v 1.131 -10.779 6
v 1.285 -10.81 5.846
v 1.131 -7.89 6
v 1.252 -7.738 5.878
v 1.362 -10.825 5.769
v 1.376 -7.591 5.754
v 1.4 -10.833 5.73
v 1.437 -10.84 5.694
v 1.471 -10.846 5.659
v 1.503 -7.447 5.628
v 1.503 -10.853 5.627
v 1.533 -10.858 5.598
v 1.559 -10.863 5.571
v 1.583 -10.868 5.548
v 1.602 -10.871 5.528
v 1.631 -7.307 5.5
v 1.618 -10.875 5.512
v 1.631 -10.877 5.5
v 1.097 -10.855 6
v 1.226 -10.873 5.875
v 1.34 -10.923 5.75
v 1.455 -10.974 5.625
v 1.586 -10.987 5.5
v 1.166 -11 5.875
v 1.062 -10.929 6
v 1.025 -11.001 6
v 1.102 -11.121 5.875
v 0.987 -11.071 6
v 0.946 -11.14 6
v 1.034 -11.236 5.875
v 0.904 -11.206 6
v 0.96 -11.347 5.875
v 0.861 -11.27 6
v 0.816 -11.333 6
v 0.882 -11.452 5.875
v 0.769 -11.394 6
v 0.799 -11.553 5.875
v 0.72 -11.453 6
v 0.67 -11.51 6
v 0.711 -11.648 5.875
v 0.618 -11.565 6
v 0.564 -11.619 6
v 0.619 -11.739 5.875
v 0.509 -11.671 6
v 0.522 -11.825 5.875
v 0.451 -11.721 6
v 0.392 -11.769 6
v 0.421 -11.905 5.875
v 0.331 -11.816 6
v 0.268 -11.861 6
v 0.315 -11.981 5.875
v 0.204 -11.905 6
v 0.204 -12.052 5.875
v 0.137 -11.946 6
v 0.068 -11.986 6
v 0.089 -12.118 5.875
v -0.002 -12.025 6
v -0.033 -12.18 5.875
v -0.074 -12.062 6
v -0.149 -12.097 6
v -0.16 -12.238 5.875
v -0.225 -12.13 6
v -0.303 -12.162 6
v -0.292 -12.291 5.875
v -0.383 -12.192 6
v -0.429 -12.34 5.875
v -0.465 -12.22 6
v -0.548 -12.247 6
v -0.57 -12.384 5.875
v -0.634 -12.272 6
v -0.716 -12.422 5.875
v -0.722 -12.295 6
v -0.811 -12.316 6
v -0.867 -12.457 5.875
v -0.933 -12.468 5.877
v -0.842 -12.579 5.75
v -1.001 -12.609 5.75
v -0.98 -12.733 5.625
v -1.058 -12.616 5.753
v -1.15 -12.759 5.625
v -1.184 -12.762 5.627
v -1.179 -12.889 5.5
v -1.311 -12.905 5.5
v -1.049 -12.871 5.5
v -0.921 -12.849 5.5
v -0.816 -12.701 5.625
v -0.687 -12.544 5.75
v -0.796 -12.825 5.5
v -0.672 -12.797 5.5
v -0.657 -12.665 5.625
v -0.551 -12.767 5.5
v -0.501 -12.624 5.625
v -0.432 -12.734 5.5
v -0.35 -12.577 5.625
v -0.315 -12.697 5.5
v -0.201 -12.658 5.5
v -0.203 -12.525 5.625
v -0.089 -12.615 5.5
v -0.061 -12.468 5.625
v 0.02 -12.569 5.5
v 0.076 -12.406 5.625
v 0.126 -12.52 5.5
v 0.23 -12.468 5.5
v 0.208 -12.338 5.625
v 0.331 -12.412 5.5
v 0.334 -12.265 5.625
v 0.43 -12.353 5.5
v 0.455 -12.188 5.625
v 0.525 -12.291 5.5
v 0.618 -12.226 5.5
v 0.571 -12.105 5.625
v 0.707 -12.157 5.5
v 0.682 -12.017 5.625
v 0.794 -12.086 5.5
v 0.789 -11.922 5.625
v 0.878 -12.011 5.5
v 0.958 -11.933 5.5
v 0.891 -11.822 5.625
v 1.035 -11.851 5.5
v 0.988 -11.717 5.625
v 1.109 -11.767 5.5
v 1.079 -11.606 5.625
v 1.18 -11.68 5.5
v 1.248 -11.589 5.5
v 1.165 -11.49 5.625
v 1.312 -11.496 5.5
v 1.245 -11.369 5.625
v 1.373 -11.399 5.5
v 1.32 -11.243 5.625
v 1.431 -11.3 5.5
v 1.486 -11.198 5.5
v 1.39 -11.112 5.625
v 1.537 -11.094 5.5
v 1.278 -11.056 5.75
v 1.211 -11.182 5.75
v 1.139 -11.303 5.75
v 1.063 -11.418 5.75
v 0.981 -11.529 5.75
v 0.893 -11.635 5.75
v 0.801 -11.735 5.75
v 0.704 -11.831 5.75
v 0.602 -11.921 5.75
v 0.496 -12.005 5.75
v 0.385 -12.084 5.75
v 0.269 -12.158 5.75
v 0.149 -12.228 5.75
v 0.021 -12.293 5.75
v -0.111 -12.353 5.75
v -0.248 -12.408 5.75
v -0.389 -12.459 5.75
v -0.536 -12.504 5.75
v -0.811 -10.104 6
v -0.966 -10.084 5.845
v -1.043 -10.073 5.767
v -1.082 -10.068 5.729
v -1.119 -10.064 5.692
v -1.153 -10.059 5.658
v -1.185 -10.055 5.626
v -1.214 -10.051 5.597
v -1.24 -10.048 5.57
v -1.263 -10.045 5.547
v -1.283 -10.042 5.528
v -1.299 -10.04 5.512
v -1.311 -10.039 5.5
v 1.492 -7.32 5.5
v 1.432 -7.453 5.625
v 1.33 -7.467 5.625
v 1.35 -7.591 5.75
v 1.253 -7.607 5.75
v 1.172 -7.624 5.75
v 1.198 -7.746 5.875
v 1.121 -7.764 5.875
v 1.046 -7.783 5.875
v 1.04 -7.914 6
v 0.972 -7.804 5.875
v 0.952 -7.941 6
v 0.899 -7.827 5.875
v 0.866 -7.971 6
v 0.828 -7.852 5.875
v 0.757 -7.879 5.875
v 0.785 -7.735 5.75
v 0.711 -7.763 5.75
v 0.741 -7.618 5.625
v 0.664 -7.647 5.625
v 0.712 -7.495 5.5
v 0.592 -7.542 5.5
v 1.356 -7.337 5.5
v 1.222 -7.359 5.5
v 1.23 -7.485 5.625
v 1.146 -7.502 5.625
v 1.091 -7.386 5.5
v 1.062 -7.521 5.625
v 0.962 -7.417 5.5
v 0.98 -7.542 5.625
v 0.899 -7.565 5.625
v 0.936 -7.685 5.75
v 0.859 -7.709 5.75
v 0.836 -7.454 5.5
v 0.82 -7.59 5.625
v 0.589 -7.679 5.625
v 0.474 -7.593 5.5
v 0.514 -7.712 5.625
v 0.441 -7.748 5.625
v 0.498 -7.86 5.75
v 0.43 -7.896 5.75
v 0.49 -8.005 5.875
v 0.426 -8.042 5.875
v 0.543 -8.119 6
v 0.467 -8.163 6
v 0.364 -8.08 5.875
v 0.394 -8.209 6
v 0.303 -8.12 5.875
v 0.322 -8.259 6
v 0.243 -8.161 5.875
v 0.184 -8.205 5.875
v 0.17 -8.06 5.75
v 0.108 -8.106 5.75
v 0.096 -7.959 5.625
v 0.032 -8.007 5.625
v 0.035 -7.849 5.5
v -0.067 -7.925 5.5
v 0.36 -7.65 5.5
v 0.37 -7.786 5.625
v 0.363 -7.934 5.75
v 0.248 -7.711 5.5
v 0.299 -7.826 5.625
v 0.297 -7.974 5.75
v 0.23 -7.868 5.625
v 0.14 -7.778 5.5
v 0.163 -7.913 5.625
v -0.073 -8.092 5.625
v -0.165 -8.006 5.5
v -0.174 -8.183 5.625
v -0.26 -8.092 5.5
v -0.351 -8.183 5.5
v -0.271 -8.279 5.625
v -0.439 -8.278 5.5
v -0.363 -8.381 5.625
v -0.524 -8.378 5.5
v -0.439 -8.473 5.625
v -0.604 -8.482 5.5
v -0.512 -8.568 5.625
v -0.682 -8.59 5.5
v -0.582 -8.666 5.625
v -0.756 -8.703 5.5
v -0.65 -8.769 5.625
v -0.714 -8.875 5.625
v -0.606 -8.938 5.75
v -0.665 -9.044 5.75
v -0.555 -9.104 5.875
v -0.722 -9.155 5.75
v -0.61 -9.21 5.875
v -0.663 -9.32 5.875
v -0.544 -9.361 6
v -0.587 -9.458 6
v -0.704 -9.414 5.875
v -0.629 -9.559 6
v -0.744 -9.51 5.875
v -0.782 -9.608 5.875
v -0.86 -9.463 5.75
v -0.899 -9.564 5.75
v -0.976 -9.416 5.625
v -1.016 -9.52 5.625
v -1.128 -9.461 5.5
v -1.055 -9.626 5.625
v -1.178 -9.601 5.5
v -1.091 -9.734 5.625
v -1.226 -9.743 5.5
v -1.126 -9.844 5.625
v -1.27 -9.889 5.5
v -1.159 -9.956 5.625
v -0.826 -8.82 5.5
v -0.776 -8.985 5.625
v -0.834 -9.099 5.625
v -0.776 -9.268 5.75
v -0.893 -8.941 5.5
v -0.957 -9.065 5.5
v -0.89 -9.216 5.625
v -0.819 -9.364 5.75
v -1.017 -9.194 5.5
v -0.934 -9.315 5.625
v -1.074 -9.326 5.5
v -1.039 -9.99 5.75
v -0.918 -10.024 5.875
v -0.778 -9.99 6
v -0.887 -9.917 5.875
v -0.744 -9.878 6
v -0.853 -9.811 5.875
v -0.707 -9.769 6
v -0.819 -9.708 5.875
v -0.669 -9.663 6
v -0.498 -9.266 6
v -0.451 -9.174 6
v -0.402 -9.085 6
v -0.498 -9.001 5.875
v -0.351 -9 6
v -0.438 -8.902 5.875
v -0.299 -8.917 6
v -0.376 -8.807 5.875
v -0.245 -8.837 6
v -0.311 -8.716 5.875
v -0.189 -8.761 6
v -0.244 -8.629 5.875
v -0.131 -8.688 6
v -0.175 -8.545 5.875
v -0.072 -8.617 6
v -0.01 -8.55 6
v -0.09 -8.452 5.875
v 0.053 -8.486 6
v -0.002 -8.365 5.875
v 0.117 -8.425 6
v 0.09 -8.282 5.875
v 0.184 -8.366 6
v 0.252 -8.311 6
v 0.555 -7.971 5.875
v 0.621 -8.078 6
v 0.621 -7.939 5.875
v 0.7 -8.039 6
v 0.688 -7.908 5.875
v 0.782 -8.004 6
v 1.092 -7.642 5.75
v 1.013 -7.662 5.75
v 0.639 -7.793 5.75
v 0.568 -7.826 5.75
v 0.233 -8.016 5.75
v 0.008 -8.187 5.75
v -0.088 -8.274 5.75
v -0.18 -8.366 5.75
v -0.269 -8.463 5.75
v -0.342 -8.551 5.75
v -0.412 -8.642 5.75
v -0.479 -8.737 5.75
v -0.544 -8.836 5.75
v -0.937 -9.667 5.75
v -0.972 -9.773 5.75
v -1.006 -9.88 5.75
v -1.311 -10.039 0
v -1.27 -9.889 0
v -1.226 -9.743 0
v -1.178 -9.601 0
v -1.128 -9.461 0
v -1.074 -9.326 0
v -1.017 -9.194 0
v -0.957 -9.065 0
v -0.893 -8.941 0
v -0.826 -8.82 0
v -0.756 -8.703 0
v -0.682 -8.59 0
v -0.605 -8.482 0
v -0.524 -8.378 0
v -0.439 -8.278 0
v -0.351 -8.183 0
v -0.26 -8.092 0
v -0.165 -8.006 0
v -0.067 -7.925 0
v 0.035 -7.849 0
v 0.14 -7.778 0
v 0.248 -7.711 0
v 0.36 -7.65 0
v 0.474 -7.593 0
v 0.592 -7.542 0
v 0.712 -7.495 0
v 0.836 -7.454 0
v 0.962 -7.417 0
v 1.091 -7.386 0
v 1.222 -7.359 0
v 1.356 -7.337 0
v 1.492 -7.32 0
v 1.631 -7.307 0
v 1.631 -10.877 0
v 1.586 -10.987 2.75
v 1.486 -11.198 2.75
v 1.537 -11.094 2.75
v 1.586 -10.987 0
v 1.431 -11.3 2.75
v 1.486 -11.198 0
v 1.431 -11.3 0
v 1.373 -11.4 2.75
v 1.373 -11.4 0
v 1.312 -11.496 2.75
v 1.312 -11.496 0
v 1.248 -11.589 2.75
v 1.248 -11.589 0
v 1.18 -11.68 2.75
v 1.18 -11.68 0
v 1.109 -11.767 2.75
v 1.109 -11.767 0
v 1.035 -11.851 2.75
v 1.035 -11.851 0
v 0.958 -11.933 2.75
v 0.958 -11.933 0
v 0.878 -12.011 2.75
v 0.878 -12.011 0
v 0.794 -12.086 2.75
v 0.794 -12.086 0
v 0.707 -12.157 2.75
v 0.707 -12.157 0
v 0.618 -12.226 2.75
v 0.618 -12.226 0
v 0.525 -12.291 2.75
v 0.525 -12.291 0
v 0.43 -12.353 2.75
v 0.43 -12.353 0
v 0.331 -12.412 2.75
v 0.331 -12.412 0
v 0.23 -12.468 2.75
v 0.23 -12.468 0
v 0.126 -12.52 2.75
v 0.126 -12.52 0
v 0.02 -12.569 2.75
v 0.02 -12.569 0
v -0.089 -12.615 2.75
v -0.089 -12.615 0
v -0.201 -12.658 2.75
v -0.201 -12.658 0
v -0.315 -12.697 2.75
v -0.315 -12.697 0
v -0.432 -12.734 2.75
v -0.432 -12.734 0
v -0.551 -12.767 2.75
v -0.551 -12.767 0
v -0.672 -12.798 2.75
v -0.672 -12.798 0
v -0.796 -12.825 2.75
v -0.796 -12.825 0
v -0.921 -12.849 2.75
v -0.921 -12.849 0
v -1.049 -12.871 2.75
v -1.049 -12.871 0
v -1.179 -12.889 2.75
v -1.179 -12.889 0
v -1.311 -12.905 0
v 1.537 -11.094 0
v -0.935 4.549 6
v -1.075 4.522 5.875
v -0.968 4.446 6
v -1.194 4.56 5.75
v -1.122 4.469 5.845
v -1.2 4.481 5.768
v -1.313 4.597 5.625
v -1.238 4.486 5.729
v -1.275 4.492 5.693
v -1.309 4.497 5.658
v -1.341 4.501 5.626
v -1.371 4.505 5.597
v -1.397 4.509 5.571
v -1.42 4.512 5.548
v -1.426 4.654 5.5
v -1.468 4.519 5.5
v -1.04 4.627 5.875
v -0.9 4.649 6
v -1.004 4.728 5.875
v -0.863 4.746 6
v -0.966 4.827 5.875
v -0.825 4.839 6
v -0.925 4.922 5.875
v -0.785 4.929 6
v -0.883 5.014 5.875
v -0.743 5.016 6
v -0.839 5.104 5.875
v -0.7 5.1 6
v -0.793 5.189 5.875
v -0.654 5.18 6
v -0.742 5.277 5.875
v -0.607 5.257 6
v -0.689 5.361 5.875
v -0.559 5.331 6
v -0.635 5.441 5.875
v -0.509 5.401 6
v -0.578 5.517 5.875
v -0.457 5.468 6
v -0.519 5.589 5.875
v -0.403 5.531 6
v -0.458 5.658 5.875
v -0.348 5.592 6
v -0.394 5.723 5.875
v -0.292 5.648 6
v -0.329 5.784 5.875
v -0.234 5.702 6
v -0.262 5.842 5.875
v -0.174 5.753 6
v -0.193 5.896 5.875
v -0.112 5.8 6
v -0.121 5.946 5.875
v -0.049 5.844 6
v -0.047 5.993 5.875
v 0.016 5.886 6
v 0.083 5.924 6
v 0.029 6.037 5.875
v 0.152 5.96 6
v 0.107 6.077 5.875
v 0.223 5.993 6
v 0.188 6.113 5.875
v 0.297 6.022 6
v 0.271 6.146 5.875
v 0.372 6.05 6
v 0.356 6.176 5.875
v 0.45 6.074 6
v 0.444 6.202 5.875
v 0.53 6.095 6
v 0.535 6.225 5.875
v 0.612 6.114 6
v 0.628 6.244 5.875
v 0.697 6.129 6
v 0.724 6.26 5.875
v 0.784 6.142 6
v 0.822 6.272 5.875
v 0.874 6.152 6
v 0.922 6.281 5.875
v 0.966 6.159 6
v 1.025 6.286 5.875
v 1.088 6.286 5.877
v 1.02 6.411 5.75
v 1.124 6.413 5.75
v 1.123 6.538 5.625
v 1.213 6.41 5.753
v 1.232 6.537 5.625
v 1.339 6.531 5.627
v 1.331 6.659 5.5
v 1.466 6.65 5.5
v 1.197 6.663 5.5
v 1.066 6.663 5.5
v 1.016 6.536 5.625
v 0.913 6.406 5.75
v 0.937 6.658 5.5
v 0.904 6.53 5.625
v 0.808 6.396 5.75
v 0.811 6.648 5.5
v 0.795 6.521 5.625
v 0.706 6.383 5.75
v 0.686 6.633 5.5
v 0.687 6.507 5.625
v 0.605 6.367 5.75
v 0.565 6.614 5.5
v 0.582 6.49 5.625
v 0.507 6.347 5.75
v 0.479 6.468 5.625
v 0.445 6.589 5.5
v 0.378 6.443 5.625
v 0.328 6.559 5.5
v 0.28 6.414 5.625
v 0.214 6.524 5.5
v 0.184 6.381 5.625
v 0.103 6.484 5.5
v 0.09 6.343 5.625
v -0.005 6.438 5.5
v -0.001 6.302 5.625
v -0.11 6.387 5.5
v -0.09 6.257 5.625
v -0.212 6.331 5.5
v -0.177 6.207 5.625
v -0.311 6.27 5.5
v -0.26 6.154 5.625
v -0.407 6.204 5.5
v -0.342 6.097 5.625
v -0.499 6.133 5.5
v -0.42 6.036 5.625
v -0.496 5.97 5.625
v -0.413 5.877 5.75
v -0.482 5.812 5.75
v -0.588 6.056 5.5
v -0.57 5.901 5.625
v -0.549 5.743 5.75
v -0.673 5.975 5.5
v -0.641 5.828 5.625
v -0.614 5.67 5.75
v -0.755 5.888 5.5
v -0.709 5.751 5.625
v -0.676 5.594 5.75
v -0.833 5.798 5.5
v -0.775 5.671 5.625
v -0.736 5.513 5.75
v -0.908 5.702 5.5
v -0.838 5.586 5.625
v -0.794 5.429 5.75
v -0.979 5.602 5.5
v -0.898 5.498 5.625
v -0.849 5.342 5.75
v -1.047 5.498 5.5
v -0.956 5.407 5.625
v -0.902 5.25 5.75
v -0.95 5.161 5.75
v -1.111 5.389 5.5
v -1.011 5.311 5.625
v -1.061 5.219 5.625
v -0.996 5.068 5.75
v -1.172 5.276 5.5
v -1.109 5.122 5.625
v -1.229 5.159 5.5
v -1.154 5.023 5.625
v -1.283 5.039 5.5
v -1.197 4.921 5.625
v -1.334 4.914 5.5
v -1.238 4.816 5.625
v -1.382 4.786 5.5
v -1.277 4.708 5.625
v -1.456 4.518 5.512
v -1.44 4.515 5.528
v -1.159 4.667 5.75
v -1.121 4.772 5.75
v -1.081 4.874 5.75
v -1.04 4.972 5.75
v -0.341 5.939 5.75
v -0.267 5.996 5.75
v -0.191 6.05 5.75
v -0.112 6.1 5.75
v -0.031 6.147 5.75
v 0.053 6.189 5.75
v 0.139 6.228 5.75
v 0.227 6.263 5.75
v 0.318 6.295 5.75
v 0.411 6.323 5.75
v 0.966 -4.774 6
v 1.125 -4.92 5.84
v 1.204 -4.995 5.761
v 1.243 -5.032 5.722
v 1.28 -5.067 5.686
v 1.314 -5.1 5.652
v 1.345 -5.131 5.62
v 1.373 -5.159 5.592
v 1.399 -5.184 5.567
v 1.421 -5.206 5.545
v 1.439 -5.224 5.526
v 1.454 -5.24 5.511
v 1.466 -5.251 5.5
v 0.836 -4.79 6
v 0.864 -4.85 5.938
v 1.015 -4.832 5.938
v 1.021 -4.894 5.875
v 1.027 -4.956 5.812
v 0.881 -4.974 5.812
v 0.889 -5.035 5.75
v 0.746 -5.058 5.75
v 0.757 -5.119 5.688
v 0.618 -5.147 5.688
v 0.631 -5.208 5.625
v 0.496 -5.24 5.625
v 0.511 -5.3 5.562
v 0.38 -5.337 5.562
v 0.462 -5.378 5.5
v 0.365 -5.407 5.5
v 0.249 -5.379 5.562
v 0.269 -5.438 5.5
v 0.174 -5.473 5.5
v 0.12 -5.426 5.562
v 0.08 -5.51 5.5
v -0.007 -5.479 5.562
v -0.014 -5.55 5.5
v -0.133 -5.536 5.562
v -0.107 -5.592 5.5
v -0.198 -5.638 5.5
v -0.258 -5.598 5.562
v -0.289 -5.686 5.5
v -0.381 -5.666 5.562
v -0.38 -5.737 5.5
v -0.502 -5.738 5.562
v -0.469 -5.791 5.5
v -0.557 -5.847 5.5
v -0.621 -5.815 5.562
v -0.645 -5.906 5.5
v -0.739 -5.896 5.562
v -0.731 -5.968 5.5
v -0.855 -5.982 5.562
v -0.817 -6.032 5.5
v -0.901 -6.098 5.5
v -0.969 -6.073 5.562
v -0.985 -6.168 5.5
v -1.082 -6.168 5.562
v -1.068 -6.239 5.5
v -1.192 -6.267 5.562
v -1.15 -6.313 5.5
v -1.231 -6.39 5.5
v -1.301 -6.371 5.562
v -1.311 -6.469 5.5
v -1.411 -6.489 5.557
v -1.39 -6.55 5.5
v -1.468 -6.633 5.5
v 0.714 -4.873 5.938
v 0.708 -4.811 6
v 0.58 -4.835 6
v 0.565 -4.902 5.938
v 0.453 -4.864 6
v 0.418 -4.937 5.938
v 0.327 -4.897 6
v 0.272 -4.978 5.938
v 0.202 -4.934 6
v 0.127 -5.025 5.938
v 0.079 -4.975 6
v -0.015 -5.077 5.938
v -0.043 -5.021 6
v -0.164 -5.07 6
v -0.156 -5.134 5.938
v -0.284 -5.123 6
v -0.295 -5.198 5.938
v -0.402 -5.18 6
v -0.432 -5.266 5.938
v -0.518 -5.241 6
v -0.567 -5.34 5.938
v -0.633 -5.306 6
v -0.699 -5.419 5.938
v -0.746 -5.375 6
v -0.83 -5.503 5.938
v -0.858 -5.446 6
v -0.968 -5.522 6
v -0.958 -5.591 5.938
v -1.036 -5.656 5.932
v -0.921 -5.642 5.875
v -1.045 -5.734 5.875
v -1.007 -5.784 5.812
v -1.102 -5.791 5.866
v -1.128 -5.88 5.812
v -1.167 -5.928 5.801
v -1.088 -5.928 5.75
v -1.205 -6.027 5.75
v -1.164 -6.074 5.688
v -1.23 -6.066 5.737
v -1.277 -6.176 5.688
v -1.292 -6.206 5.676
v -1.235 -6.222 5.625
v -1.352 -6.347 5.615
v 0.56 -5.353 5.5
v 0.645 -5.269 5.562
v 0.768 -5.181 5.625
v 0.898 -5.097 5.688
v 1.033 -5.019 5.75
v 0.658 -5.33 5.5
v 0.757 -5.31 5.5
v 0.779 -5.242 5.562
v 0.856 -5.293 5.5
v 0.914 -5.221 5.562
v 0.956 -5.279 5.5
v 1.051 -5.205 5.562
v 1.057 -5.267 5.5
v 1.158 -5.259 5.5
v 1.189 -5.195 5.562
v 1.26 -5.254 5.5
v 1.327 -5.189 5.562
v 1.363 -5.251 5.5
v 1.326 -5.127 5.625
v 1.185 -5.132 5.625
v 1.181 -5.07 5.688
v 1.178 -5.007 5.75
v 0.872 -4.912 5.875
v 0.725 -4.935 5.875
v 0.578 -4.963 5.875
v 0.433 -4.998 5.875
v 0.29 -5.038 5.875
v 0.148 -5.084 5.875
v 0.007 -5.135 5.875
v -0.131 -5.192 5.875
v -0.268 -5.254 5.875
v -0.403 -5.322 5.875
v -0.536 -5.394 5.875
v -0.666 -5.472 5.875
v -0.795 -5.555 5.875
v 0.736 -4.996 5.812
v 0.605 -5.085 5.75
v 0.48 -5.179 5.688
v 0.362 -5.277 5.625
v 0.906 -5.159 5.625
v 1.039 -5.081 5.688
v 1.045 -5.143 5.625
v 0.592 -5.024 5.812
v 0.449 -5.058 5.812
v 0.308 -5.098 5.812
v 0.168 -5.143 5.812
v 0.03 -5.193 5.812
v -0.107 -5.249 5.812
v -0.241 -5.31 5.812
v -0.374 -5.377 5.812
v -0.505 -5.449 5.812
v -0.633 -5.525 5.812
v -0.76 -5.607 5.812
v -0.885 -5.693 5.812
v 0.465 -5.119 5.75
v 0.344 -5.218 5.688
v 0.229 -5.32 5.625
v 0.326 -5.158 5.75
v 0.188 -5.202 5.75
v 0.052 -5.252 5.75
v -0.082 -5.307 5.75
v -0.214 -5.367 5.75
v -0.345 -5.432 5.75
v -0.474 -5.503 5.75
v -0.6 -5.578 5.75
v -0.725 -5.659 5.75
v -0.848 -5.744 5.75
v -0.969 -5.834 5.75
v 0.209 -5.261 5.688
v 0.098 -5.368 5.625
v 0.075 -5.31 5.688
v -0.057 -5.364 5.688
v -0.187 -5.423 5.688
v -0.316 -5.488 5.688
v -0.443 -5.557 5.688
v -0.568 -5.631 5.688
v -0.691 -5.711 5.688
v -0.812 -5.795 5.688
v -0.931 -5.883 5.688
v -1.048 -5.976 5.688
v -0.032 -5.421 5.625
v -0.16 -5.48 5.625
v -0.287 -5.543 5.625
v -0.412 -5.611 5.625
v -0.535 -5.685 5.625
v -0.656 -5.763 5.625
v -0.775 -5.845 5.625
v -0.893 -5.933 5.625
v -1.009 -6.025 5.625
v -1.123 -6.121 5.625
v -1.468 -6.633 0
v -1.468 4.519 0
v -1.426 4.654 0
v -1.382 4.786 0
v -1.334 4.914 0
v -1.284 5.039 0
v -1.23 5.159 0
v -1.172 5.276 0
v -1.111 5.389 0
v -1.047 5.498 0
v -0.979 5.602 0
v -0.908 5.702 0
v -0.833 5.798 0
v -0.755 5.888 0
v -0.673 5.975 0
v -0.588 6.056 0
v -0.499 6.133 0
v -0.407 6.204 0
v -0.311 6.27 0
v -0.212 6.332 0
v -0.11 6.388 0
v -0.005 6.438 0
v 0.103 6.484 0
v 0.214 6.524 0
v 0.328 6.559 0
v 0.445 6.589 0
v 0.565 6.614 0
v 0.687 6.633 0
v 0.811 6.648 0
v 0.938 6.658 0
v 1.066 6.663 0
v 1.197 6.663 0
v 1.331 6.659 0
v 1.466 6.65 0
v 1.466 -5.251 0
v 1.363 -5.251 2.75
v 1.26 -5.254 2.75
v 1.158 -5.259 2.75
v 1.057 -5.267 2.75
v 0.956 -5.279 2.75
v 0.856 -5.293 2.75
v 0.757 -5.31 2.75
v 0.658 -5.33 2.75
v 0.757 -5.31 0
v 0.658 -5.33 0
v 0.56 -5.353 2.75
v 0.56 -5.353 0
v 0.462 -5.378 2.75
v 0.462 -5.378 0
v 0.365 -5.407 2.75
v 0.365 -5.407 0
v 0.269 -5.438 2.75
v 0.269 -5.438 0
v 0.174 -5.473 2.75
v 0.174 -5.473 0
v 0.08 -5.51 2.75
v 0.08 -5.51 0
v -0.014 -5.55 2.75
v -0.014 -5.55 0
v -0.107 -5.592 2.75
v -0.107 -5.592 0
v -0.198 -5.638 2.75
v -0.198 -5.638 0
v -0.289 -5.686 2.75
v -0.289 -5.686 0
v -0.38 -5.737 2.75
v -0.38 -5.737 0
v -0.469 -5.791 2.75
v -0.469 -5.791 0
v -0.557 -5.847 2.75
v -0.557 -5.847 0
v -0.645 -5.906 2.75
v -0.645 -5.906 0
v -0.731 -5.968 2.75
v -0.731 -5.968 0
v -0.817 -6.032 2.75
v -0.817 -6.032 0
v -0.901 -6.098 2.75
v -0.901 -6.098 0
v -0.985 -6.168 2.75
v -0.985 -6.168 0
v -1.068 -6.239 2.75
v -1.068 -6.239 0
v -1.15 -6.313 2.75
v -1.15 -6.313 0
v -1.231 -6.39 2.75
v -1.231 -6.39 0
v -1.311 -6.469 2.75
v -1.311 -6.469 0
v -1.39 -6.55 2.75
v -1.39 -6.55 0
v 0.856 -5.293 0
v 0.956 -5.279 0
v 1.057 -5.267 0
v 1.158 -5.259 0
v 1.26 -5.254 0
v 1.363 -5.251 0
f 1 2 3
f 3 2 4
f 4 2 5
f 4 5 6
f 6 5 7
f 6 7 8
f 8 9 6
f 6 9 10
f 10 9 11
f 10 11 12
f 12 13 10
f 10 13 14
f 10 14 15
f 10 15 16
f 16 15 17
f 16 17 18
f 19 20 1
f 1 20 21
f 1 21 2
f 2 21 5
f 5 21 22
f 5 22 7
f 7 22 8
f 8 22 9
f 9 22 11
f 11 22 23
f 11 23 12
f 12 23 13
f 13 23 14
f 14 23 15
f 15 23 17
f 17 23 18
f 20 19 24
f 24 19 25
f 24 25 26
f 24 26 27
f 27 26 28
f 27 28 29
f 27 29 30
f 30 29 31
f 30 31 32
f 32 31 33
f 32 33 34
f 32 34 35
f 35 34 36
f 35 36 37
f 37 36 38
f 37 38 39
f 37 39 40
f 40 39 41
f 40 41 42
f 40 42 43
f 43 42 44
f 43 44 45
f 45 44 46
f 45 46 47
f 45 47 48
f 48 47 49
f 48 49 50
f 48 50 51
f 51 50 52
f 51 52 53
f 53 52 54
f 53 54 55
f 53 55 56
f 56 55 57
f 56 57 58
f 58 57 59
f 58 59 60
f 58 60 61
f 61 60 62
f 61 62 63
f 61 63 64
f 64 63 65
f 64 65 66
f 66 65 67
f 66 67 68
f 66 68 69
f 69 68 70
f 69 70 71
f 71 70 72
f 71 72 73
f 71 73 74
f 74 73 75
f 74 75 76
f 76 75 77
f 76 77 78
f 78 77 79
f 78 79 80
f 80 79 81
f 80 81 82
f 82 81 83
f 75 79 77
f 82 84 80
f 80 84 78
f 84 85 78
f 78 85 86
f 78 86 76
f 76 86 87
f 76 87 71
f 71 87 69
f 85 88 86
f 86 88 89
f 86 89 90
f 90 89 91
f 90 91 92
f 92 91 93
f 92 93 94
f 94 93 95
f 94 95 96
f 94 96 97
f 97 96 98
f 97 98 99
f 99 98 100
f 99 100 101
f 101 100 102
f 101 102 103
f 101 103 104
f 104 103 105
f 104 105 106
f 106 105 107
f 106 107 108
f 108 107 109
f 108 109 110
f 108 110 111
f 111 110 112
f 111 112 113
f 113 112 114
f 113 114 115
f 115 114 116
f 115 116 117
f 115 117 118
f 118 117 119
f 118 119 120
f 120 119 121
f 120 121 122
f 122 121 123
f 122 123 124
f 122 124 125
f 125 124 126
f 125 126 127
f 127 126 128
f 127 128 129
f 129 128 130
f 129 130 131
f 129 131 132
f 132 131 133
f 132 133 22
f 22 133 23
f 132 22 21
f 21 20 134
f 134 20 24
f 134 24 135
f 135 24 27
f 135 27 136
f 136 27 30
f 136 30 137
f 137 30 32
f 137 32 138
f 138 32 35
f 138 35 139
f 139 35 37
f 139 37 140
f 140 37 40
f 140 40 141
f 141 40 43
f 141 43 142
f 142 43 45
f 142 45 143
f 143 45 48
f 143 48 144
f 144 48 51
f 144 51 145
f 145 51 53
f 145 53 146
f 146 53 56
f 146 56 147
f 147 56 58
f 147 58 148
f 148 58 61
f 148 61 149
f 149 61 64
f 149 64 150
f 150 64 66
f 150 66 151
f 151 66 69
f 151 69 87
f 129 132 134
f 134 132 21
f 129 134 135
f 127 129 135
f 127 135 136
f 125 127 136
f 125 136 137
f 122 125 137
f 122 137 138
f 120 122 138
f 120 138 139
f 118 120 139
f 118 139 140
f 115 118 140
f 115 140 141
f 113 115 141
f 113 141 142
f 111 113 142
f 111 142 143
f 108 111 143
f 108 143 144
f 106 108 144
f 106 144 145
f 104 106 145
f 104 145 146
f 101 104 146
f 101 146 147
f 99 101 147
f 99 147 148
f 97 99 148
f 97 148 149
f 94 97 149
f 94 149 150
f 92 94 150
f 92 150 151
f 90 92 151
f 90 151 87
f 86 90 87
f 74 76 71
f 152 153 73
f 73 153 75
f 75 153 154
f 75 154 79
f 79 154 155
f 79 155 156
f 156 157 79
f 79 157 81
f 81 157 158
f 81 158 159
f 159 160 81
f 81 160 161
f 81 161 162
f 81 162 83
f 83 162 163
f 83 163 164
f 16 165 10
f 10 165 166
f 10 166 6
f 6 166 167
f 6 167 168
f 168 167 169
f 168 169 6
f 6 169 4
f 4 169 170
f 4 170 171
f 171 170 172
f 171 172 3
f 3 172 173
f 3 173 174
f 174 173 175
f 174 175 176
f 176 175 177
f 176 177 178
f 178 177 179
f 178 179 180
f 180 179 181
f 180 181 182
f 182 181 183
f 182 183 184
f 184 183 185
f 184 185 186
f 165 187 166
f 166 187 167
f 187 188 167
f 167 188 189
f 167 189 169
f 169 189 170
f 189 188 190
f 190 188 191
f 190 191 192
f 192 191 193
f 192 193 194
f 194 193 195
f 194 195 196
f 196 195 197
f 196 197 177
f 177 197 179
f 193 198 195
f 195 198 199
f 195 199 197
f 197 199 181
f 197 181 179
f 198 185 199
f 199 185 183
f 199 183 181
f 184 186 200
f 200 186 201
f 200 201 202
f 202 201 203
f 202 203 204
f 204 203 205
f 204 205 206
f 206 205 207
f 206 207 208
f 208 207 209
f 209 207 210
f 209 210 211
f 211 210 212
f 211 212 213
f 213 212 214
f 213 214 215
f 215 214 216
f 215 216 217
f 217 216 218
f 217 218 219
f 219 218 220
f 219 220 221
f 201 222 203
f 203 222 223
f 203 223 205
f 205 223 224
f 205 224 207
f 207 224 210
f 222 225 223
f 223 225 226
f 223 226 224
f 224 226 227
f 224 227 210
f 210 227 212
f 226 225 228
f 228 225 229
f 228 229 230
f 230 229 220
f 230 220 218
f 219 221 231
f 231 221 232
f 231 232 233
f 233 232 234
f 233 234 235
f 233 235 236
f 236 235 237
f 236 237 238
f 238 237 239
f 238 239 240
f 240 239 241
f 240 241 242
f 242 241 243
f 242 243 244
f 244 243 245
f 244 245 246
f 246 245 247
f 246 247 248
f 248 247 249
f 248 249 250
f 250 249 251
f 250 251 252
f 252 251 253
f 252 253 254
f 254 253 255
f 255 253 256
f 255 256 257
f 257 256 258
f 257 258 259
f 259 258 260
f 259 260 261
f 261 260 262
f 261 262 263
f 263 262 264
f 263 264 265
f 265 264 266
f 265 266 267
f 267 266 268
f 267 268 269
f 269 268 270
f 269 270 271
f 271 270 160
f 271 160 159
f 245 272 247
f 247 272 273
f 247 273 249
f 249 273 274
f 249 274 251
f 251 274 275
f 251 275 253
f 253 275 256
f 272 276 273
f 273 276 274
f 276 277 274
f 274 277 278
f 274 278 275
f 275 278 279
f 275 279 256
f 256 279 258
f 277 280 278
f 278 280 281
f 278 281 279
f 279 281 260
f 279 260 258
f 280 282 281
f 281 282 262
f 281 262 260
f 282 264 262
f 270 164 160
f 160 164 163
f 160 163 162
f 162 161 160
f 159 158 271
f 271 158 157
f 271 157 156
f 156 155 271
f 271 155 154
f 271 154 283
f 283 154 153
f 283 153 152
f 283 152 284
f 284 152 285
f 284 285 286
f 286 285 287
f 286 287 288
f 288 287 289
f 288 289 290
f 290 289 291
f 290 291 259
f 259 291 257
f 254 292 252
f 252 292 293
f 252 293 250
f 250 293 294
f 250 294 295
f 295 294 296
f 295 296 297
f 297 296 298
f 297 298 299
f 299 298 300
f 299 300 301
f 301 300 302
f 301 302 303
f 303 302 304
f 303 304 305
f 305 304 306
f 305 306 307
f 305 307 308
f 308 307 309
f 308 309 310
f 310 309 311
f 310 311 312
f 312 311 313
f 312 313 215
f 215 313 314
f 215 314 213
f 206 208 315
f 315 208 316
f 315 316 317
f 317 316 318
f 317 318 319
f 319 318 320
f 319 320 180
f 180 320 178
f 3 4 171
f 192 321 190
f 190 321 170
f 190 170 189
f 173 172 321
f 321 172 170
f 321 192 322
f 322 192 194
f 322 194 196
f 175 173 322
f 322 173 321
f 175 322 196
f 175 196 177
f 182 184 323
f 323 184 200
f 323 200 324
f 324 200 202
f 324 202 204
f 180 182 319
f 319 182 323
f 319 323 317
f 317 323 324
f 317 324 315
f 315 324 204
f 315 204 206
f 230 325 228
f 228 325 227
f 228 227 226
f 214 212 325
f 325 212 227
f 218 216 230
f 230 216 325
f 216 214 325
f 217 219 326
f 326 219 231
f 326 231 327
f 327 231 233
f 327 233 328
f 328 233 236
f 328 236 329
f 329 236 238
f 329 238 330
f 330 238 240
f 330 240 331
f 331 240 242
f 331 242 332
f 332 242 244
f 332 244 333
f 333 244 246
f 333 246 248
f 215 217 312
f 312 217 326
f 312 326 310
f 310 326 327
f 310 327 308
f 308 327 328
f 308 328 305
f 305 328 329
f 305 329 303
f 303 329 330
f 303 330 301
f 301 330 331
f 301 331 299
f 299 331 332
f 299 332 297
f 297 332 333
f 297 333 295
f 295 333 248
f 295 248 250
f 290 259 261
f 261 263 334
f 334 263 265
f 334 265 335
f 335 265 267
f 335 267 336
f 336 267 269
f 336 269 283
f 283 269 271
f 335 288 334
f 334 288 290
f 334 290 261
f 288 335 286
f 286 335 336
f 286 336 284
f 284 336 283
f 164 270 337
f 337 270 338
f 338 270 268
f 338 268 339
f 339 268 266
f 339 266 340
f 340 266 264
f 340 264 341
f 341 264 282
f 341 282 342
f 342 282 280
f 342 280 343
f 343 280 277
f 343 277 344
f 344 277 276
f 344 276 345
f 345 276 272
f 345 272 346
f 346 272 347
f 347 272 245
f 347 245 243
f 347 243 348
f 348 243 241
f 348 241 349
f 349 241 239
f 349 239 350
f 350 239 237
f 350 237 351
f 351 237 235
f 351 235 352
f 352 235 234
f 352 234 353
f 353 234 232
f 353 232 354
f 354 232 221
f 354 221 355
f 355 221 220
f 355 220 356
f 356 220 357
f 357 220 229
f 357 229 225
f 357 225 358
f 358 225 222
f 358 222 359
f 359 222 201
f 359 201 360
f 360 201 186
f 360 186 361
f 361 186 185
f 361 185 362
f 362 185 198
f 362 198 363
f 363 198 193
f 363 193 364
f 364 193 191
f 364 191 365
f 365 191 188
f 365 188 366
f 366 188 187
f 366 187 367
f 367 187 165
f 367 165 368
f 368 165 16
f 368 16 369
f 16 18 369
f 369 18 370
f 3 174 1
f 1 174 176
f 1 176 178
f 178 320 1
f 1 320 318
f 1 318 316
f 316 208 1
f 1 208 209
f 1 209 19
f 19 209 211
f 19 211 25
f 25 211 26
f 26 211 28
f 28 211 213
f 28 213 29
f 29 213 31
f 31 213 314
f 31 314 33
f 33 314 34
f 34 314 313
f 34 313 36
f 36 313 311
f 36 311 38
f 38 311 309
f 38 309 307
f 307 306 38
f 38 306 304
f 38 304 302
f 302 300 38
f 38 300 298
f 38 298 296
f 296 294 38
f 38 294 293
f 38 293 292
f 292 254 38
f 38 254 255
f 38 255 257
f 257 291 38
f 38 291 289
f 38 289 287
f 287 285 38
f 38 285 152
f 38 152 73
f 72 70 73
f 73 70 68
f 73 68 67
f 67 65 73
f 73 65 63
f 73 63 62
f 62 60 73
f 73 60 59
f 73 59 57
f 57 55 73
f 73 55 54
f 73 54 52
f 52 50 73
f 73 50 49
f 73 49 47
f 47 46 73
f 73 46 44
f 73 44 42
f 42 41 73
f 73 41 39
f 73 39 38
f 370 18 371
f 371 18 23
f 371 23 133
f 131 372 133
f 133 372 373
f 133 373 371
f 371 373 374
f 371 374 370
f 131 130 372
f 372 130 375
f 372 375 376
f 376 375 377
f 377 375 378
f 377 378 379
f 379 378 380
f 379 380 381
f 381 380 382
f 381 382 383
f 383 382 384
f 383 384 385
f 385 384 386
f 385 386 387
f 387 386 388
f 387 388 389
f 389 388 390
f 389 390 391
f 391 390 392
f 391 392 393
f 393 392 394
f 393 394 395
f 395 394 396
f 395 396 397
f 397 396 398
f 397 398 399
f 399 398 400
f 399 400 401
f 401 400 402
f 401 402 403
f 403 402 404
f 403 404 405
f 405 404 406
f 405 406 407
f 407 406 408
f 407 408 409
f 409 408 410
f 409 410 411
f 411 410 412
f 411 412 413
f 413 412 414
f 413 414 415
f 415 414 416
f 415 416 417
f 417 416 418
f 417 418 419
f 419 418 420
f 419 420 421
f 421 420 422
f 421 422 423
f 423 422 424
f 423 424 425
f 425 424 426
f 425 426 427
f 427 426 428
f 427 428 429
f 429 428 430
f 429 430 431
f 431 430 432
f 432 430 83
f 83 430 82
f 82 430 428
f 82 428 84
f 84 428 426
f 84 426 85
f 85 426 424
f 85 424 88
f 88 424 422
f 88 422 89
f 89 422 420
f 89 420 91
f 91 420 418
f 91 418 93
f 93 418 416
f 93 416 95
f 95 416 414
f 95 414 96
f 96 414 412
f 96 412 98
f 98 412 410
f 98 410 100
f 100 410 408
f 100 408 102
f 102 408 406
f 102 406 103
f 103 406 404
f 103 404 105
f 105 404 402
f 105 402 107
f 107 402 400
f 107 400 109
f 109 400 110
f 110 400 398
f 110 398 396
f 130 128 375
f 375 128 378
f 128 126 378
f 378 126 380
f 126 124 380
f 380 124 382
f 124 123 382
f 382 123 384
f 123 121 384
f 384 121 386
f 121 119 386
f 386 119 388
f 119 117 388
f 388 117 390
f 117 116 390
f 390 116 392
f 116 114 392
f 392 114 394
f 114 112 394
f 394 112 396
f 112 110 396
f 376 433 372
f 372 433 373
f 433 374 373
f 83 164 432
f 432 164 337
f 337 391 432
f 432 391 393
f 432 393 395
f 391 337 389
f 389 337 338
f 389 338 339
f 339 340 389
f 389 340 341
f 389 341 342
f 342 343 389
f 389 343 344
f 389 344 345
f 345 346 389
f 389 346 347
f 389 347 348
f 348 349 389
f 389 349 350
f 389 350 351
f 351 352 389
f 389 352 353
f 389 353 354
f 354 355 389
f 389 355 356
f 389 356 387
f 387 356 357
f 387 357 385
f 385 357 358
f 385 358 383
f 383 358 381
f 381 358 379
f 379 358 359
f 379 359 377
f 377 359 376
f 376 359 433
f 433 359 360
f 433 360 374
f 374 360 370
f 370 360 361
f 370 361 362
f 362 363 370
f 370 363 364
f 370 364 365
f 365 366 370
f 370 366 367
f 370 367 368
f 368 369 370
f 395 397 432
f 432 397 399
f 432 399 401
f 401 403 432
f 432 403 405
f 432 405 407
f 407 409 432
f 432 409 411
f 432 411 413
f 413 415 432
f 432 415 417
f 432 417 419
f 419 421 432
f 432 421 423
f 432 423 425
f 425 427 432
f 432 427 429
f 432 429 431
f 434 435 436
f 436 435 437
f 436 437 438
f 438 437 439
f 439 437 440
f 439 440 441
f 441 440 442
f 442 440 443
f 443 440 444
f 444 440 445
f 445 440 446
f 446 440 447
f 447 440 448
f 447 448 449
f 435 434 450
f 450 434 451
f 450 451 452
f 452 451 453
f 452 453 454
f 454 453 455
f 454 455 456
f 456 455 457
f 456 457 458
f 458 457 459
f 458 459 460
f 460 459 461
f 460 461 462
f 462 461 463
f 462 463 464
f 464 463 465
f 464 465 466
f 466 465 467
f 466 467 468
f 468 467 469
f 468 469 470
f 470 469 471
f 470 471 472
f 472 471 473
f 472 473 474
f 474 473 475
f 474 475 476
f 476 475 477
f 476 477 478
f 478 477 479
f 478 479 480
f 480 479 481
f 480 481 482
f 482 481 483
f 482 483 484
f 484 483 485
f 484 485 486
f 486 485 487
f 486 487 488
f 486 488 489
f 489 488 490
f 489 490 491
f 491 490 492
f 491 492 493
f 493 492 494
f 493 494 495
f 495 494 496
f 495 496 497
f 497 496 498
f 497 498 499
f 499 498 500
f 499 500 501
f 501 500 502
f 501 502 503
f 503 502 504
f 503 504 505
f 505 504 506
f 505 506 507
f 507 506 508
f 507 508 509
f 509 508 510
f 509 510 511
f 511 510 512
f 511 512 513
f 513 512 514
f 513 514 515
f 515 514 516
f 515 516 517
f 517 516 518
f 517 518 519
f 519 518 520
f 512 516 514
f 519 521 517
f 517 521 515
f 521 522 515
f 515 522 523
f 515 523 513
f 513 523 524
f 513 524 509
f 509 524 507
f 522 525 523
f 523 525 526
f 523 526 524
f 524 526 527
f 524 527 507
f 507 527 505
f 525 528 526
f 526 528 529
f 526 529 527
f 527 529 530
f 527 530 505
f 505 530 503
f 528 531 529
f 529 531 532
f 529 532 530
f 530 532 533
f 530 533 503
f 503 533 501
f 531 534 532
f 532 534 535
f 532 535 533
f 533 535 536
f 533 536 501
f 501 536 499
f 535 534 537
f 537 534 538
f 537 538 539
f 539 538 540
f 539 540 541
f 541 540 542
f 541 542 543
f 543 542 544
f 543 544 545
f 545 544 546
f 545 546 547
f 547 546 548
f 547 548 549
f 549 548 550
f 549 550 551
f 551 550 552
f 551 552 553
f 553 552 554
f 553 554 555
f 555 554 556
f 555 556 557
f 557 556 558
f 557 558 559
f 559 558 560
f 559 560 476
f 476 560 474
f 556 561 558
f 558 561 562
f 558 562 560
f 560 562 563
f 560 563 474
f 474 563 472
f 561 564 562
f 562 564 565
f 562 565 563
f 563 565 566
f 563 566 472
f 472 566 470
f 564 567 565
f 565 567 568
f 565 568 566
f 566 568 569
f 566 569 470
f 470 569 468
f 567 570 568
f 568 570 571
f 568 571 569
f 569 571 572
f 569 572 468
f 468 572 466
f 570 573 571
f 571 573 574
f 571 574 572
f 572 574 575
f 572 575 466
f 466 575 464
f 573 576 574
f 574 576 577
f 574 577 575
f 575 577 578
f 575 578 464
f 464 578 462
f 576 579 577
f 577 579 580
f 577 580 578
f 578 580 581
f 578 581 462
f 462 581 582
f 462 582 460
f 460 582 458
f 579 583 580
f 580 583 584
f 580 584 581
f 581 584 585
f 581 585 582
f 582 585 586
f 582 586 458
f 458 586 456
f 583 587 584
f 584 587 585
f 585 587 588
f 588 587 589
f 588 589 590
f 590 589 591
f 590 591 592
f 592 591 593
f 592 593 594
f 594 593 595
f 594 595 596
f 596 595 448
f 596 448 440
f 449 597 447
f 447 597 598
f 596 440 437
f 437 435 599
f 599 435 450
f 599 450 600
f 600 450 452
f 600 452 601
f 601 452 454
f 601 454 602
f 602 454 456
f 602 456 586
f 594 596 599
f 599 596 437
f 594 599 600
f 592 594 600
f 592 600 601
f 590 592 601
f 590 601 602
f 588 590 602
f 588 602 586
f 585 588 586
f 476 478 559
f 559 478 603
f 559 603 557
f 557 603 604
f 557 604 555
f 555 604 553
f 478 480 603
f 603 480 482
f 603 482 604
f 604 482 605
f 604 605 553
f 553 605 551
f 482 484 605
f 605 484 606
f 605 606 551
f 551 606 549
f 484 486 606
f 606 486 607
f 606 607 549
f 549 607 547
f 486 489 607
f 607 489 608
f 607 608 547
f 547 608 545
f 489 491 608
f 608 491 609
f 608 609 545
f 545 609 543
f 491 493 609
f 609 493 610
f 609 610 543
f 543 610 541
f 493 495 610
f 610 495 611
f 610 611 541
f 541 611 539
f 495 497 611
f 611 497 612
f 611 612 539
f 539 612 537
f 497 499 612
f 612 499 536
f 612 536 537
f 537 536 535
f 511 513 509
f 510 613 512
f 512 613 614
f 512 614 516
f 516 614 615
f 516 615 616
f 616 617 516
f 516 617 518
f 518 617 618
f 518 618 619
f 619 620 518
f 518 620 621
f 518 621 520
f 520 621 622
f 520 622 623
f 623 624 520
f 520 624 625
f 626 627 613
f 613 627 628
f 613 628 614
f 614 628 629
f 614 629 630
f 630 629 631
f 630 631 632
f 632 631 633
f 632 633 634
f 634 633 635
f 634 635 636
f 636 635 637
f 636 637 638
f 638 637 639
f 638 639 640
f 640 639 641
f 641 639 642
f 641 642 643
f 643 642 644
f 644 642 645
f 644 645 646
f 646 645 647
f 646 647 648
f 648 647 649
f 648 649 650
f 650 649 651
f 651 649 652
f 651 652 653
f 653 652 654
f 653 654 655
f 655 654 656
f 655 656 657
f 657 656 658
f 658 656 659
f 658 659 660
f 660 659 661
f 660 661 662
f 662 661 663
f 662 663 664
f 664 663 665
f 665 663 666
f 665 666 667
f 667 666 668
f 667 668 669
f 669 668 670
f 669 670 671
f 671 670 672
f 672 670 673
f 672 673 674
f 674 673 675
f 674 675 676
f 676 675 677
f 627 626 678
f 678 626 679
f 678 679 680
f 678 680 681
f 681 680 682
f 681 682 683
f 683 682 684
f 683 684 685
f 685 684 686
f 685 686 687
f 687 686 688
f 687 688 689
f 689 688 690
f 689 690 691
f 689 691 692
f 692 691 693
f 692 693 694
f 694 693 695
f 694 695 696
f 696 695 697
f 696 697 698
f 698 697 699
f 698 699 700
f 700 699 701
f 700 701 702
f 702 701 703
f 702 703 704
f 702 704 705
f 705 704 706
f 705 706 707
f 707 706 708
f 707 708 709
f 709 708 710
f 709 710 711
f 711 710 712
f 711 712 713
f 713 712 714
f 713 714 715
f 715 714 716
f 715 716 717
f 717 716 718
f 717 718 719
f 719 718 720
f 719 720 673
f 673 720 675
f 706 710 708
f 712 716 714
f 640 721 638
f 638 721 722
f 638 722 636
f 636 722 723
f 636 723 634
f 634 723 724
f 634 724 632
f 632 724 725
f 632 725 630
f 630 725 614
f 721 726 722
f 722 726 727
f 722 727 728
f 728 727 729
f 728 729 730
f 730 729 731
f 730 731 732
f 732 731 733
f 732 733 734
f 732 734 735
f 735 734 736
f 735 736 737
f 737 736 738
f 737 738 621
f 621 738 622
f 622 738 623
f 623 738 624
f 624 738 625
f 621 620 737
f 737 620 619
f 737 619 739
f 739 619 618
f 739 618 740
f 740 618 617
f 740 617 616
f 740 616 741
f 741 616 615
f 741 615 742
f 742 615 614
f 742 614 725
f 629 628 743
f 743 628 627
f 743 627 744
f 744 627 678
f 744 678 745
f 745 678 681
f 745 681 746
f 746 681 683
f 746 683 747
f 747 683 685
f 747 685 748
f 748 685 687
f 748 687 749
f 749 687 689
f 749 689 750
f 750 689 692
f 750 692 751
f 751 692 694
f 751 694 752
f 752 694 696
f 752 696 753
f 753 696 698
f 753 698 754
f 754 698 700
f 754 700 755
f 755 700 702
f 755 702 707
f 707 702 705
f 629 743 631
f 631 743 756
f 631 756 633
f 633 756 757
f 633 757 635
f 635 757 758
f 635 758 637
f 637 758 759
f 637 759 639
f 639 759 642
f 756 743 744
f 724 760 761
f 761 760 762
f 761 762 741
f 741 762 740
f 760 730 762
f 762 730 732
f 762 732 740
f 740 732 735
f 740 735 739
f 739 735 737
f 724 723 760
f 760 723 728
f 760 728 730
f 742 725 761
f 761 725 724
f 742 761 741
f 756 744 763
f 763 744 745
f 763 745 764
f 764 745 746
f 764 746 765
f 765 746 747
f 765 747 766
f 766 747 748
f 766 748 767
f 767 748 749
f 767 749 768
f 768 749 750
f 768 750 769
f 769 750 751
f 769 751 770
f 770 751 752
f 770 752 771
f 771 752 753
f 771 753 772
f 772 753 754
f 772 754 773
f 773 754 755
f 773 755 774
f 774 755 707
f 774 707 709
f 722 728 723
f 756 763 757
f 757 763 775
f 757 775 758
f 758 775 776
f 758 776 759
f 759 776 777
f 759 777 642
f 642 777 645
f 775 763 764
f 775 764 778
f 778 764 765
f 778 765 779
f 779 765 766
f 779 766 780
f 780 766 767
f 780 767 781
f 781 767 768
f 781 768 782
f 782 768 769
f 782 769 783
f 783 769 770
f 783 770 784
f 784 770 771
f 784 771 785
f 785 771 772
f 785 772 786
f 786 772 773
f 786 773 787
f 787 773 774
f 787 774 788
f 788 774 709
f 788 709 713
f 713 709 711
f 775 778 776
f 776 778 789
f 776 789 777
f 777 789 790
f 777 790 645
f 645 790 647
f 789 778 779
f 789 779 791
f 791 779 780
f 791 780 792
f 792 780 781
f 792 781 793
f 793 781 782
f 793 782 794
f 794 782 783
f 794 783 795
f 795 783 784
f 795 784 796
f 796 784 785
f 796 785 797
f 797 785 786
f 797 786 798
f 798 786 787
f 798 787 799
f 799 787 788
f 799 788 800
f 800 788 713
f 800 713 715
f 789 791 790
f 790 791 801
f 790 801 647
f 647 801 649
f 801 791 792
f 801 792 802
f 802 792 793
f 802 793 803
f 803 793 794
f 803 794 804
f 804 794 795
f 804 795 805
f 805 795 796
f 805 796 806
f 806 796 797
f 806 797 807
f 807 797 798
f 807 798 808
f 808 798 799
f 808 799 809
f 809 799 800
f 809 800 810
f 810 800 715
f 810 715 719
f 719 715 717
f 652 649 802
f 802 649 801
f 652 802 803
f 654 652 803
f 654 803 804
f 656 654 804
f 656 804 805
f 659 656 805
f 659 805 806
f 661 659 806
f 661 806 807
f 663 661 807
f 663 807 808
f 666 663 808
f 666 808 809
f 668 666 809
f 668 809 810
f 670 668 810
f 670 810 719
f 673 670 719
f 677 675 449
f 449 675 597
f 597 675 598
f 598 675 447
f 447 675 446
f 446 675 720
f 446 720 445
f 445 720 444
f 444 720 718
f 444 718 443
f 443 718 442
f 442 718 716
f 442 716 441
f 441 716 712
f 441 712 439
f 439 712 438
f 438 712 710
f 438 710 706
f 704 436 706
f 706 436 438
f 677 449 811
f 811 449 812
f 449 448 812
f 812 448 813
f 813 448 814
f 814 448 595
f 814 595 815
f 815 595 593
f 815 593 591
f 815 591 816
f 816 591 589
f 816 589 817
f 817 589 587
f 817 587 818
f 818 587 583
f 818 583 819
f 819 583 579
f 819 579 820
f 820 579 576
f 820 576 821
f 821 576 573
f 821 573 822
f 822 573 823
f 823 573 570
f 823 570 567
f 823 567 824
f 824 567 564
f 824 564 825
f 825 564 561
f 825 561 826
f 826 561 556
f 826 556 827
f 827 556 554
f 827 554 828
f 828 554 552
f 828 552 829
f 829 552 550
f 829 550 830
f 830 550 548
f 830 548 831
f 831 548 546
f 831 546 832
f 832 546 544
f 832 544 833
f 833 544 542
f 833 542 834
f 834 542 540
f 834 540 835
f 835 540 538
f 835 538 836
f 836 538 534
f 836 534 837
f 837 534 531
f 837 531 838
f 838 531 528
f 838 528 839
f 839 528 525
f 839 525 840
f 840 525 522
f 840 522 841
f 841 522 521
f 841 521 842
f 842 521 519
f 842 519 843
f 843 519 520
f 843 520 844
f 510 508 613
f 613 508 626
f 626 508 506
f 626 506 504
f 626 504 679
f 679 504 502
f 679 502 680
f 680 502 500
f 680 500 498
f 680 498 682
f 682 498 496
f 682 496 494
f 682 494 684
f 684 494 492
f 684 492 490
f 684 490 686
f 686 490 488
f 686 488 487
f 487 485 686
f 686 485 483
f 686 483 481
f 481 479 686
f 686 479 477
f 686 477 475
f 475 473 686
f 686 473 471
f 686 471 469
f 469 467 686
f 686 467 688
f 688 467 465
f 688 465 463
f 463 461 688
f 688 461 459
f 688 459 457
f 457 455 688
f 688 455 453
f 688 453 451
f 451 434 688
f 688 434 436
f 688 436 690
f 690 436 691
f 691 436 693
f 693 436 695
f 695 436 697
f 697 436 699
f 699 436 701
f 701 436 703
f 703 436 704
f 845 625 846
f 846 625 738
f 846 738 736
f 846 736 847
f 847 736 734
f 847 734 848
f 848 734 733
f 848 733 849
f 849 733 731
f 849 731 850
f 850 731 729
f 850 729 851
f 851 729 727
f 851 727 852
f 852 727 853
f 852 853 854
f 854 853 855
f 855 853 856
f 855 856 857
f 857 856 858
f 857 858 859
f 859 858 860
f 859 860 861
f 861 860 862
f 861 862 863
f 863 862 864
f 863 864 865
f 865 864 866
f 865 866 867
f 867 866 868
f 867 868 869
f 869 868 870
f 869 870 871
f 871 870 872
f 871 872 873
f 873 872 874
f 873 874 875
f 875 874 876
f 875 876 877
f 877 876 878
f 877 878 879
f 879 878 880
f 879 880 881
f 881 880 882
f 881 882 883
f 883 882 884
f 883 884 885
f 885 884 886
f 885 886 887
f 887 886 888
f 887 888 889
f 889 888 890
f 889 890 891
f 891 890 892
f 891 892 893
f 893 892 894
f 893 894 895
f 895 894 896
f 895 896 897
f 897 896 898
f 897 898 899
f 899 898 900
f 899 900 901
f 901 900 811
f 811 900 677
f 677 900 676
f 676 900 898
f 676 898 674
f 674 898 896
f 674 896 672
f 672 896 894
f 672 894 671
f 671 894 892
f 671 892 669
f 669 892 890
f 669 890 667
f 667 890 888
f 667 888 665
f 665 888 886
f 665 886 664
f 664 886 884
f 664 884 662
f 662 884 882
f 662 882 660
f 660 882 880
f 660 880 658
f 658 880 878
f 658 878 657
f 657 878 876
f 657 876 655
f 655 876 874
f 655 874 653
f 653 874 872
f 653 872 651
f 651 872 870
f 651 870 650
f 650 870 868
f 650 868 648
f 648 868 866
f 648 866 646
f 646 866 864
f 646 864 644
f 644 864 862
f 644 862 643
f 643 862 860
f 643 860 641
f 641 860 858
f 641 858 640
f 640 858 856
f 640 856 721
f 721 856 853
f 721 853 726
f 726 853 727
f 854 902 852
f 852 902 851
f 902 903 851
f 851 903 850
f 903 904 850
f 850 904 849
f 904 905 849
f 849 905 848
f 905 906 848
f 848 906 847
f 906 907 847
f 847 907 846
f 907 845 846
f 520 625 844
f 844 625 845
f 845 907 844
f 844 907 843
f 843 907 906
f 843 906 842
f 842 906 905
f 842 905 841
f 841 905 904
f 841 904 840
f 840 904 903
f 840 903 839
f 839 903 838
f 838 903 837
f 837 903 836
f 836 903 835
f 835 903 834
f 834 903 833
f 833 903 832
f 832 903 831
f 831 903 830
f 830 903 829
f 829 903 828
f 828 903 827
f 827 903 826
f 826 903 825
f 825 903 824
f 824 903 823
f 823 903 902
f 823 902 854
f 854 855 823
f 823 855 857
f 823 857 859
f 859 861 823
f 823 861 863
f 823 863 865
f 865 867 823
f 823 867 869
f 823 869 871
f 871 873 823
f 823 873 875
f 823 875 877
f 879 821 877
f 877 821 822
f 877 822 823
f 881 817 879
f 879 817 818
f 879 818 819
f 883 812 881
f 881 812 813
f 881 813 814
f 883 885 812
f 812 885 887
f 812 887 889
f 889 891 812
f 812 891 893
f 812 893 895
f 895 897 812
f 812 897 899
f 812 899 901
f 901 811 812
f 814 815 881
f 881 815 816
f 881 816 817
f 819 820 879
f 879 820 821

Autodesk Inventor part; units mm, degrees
ref_plane "YZ Plane" through (0, 0, 0) normal (1, 0, 0) x (0, 1, 0)
ref_plane "XZ Plane" through (0, 0, 0) normal (0, 1, 0) x (-1, 0, 0)
ref_plane "XY Plane" through (0, 0, 0) normal (0, 0, 1) x (1, 0, 0)
sketch "Szkic1" plane through (0, 0, 0) normal (0, 0, 1) x (1, 0, 0)
  line L0 (-1.3108, -12.905) -> (-1.3108, -10.0385)
  spline S0 degree 4 poles (1.6306, -10.8768) (1.5249, -11.1473) (1.3425, -11.497) (1.0422, -11.89) (0.5755, -12.2734) (0.0272, -12.6005) (-0.5028, -12.7796) (-0.9603, -12.8671) (-1.3108, -12.905) knots 0 0 0 0 0 0.304305 0.424541 0.545967 0.670392 1 1 1 1 1
  line L1 (1.6306, -7.3073) -> (1.6306, -10.8768)
  spline S1 degree 4 poles (-1.3108, -10.0385) (-1.206, -9.6395) (-1.0239, -9.1317) (-0.7187, -8.5698) (-0.2302, -8.04) (0.3127, -7.6275) (0.838, -7.4177) (1.2888, -7.3323) (1.6306, -7.3073) knots 0 0 0 0 0 0.330819 0.454349 0.5746 0.693981 1 1 1 1 1
  line L2 (1.4656, 6.6497) -> (1.4656, -5.2511)
  spline S2 degree 4 poles (-1.4677, 4.5193) (-1.3642, 4.8752) (-1.1849, 5.3226) (-0.8831, 5.8051) (-0.4003, 6.232) (0.1453, 6.5459) (0.6724, 6.6654) (1.1231, 6.6778) (1.4656, 6.6497) knots 0 0 0 0 0 0.32512 0.446527 0.565537 0.685202 1 1 1 1 1
  line L3 (-1.4677, -6.633) -> (-1.4677, 4.5193)
  spline S3 degree 4 poles (1.4656, -5.2511) (1.2149, -5.2472) (0.8691, -5.2729) (0.4353, -5.3641) (-0.0733, -5.5664) (-0.5802, -5.8367) (-0.973, -6.1352) (-1.2651, -6.4124) (-1.4677, -6.633) knots 0 0 0 0 0 0.303835 0.42546 0.548402 0.673696 1 1 1 1 1
  point P0 (0, 0)
  point P1 (-1.1027, -9.3964)
  point P2 (-0.8481, -8.8578)
  point P3 (-0.5505, -8.4115)
  point P4 (-0.2114, -8.0475)
  point P5 (0.171, -7.7579)
  point P6 (0.6007, -7.5381)
  point P7 (1.0846, -7.387)
  point P8 (1.4326, -11.2981)
  point P9 (1.1911, -11.6655)
  point P10 (0.9057, -11.9842)
  point P11 (0.5741, -12.2575)
  point P12 (0.1924, -12.4873)
  point P13 (-0.2447, -12.6734)
  point P14 (-0.7436, -12.8138)
  point P15 (-1.2615, 5.0896)
  point P16 (-1.0108, 5.5545)
  point P17 (-0.7192, 5.9272)
  point P18 (-0.3866, 6.2187)
  point P19 (-0.0096, 6.4362)
  point P20 (0.4186, 6.5827)
  point P21 (0.9069, 6.656)
  point P22 (1.0656, -5.2667)
  point P23 (0.6788, -5.3253)
  point P24 (0.303, -5.427)
  point P25 (-0.0637, -5.5723)
  point P26 (-0.423, -5.7628)
  point P27 (-0.7762, -6.001)
  point P28 (-1.1243, -6.2899)
extrude "Wyciągnięcie proste1" add sketch "Szkic1" along normal blind 6
chamfer "Faza1" distance 0.5 angle 45 8 edges at (-1.3108, -11.4717, 6) (-0.2598, -8.0923, 6) (1.6306, -9.0921, 6) (0.5252, -12.2913, 6) (-0.1065, -5.5924, 6) (-1.4677, -1.0569, 6) (-0.4068, 6.204, 6) (1.4656, 0.6993, 6)
properties part number "literai"
